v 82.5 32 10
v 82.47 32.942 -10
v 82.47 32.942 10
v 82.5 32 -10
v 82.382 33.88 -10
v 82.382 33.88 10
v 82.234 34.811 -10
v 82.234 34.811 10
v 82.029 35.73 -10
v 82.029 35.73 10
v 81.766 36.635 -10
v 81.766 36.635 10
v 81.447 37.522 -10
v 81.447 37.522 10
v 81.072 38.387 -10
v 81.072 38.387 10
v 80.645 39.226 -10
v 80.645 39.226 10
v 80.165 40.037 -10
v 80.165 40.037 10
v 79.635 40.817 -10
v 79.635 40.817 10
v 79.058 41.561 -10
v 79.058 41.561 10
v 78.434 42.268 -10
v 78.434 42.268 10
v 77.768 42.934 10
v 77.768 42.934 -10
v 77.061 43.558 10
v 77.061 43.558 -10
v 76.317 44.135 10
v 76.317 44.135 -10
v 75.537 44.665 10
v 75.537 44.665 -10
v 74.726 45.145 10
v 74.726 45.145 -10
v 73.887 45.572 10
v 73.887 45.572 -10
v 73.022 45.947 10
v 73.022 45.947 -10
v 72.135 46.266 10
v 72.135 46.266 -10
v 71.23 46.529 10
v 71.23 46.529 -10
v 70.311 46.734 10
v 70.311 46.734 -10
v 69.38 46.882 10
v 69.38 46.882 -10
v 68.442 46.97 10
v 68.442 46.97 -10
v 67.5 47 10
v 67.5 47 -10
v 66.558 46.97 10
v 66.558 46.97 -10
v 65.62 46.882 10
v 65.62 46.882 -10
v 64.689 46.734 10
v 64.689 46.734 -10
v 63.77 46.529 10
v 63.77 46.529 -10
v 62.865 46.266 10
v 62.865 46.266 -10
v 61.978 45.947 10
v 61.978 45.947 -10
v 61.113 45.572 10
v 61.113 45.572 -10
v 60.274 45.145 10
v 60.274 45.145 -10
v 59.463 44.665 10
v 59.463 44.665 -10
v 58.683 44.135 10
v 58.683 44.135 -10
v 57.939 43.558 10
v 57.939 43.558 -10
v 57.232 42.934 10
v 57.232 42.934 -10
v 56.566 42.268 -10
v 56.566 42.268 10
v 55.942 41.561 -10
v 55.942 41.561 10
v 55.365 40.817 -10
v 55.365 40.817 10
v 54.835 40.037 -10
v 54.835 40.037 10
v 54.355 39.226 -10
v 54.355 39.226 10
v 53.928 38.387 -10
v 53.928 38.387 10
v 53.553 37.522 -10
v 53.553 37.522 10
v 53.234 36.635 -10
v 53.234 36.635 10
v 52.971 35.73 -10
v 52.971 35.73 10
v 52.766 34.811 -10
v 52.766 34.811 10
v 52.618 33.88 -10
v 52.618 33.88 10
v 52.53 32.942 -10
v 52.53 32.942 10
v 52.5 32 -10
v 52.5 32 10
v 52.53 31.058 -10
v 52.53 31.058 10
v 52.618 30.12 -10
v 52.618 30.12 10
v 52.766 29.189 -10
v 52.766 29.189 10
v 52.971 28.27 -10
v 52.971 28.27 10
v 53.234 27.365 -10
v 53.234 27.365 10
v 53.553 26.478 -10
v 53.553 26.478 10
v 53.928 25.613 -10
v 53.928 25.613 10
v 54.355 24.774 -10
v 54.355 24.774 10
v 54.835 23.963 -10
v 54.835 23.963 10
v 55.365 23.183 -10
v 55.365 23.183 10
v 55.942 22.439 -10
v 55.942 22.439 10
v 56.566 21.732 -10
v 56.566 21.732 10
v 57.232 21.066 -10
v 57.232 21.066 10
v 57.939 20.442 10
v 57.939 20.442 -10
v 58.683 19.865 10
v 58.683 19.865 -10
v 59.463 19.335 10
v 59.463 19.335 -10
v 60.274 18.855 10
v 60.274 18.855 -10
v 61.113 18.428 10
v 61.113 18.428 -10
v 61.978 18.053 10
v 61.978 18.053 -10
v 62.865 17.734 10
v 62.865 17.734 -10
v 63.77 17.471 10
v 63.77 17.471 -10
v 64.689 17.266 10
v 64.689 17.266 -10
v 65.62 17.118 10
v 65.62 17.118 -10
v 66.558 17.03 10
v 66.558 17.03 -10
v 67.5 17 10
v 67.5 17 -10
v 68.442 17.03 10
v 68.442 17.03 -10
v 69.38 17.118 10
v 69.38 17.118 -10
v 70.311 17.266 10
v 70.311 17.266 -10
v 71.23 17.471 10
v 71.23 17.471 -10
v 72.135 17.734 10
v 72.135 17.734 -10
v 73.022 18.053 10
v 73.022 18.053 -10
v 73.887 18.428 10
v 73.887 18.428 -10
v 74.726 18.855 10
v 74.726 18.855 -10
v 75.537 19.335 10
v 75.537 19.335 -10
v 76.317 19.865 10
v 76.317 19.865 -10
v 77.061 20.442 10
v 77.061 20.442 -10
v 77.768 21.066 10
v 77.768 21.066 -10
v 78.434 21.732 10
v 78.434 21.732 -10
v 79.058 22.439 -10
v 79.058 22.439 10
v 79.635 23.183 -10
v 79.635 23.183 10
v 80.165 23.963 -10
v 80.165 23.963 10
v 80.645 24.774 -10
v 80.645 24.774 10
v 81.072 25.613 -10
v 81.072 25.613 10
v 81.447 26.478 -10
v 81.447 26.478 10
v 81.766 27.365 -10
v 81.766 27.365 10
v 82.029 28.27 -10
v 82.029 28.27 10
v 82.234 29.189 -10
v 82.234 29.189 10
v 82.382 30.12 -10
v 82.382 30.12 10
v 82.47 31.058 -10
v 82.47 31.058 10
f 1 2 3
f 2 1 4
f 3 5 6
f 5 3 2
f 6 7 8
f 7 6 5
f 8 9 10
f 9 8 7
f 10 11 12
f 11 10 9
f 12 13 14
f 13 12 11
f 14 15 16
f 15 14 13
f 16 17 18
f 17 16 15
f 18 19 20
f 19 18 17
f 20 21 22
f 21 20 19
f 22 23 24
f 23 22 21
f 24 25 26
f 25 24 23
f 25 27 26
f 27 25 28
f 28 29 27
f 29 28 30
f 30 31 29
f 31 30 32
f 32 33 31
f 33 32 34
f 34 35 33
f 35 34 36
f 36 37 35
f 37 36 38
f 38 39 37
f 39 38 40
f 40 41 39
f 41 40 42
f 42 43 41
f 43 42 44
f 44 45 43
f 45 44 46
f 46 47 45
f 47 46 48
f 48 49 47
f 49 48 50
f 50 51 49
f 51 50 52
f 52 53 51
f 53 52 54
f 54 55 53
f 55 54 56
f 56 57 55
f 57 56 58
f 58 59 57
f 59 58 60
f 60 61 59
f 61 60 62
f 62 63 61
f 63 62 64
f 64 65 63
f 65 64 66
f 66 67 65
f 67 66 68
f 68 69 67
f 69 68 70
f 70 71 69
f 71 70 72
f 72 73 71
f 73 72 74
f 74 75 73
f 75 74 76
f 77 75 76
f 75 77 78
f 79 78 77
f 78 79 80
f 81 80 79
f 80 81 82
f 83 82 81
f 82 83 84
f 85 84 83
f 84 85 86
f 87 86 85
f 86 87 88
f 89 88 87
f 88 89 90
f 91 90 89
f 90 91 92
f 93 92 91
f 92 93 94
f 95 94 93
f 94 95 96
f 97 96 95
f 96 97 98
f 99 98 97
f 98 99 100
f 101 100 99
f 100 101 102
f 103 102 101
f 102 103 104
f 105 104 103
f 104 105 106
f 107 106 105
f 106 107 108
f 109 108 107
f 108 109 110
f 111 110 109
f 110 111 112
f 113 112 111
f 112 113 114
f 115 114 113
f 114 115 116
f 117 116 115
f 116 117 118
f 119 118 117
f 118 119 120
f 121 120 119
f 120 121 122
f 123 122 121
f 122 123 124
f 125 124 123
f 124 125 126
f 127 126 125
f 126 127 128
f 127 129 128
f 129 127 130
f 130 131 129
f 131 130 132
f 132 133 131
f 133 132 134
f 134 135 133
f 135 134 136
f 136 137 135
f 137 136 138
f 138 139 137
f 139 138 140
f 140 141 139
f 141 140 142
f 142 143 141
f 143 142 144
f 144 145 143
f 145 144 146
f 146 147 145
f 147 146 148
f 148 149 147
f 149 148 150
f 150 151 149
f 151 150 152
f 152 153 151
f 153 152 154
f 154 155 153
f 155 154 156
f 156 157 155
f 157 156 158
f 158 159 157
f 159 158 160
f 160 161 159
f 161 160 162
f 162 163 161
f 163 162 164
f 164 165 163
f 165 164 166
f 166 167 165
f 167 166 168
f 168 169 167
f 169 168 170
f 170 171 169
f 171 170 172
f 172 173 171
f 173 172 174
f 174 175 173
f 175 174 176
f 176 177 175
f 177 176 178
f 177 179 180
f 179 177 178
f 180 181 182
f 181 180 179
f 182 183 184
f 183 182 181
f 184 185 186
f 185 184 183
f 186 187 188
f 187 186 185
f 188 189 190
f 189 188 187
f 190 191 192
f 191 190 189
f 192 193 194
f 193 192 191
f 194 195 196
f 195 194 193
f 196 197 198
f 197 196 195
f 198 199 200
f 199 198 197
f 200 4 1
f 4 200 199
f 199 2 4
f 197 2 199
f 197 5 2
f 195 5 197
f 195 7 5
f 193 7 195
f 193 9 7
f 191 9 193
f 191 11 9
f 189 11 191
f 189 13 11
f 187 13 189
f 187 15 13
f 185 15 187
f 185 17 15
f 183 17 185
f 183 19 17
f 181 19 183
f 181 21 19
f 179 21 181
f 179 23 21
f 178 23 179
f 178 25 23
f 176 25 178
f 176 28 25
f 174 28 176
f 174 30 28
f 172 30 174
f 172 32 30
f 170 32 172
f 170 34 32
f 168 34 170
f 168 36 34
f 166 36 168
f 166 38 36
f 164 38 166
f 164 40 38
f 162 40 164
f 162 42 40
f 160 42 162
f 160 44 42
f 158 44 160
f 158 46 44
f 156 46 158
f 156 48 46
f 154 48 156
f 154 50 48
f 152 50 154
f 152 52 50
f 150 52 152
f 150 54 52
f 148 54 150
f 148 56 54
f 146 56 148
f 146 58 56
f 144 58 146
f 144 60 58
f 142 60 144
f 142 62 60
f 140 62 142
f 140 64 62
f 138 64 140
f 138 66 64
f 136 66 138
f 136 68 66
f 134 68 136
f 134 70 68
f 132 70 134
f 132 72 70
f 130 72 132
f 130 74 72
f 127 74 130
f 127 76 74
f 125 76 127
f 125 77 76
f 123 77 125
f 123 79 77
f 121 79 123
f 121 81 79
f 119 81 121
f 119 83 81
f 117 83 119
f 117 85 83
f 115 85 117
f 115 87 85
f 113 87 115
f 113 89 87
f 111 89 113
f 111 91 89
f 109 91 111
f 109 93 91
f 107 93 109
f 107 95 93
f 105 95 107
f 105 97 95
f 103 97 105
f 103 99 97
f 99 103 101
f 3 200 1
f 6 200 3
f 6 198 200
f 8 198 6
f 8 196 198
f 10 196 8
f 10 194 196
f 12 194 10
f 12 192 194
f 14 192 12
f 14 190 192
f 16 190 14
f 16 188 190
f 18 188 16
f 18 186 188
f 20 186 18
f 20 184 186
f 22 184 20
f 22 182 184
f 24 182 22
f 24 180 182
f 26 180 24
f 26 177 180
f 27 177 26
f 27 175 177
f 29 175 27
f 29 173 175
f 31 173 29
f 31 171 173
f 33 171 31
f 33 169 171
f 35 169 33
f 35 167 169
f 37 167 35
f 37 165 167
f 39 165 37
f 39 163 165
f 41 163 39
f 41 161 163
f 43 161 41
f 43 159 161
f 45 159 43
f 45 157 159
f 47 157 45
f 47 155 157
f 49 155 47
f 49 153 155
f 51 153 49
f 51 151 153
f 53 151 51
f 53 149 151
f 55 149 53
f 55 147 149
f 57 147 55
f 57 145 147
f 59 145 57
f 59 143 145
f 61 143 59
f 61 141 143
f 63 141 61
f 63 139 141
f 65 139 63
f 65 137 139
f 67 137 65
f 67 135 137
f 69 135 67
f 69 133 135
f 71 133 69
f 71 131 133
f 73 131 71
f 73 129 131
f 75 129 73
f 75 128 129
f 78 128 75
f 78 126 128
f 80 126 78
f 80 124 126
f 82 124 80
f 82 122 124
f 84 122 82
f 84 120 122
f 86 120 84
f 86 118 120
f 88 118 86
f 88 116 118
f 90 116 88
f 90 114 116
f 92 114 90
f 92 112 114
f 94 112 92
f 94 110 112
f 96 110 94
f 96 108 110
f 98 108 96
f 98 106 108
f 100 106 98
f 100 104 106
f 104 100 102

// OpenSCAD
$fn = 100;

translate([67.5, 32, 0])
rotate([0, 0, 0])
cylinder(20, 15, 15, true);
